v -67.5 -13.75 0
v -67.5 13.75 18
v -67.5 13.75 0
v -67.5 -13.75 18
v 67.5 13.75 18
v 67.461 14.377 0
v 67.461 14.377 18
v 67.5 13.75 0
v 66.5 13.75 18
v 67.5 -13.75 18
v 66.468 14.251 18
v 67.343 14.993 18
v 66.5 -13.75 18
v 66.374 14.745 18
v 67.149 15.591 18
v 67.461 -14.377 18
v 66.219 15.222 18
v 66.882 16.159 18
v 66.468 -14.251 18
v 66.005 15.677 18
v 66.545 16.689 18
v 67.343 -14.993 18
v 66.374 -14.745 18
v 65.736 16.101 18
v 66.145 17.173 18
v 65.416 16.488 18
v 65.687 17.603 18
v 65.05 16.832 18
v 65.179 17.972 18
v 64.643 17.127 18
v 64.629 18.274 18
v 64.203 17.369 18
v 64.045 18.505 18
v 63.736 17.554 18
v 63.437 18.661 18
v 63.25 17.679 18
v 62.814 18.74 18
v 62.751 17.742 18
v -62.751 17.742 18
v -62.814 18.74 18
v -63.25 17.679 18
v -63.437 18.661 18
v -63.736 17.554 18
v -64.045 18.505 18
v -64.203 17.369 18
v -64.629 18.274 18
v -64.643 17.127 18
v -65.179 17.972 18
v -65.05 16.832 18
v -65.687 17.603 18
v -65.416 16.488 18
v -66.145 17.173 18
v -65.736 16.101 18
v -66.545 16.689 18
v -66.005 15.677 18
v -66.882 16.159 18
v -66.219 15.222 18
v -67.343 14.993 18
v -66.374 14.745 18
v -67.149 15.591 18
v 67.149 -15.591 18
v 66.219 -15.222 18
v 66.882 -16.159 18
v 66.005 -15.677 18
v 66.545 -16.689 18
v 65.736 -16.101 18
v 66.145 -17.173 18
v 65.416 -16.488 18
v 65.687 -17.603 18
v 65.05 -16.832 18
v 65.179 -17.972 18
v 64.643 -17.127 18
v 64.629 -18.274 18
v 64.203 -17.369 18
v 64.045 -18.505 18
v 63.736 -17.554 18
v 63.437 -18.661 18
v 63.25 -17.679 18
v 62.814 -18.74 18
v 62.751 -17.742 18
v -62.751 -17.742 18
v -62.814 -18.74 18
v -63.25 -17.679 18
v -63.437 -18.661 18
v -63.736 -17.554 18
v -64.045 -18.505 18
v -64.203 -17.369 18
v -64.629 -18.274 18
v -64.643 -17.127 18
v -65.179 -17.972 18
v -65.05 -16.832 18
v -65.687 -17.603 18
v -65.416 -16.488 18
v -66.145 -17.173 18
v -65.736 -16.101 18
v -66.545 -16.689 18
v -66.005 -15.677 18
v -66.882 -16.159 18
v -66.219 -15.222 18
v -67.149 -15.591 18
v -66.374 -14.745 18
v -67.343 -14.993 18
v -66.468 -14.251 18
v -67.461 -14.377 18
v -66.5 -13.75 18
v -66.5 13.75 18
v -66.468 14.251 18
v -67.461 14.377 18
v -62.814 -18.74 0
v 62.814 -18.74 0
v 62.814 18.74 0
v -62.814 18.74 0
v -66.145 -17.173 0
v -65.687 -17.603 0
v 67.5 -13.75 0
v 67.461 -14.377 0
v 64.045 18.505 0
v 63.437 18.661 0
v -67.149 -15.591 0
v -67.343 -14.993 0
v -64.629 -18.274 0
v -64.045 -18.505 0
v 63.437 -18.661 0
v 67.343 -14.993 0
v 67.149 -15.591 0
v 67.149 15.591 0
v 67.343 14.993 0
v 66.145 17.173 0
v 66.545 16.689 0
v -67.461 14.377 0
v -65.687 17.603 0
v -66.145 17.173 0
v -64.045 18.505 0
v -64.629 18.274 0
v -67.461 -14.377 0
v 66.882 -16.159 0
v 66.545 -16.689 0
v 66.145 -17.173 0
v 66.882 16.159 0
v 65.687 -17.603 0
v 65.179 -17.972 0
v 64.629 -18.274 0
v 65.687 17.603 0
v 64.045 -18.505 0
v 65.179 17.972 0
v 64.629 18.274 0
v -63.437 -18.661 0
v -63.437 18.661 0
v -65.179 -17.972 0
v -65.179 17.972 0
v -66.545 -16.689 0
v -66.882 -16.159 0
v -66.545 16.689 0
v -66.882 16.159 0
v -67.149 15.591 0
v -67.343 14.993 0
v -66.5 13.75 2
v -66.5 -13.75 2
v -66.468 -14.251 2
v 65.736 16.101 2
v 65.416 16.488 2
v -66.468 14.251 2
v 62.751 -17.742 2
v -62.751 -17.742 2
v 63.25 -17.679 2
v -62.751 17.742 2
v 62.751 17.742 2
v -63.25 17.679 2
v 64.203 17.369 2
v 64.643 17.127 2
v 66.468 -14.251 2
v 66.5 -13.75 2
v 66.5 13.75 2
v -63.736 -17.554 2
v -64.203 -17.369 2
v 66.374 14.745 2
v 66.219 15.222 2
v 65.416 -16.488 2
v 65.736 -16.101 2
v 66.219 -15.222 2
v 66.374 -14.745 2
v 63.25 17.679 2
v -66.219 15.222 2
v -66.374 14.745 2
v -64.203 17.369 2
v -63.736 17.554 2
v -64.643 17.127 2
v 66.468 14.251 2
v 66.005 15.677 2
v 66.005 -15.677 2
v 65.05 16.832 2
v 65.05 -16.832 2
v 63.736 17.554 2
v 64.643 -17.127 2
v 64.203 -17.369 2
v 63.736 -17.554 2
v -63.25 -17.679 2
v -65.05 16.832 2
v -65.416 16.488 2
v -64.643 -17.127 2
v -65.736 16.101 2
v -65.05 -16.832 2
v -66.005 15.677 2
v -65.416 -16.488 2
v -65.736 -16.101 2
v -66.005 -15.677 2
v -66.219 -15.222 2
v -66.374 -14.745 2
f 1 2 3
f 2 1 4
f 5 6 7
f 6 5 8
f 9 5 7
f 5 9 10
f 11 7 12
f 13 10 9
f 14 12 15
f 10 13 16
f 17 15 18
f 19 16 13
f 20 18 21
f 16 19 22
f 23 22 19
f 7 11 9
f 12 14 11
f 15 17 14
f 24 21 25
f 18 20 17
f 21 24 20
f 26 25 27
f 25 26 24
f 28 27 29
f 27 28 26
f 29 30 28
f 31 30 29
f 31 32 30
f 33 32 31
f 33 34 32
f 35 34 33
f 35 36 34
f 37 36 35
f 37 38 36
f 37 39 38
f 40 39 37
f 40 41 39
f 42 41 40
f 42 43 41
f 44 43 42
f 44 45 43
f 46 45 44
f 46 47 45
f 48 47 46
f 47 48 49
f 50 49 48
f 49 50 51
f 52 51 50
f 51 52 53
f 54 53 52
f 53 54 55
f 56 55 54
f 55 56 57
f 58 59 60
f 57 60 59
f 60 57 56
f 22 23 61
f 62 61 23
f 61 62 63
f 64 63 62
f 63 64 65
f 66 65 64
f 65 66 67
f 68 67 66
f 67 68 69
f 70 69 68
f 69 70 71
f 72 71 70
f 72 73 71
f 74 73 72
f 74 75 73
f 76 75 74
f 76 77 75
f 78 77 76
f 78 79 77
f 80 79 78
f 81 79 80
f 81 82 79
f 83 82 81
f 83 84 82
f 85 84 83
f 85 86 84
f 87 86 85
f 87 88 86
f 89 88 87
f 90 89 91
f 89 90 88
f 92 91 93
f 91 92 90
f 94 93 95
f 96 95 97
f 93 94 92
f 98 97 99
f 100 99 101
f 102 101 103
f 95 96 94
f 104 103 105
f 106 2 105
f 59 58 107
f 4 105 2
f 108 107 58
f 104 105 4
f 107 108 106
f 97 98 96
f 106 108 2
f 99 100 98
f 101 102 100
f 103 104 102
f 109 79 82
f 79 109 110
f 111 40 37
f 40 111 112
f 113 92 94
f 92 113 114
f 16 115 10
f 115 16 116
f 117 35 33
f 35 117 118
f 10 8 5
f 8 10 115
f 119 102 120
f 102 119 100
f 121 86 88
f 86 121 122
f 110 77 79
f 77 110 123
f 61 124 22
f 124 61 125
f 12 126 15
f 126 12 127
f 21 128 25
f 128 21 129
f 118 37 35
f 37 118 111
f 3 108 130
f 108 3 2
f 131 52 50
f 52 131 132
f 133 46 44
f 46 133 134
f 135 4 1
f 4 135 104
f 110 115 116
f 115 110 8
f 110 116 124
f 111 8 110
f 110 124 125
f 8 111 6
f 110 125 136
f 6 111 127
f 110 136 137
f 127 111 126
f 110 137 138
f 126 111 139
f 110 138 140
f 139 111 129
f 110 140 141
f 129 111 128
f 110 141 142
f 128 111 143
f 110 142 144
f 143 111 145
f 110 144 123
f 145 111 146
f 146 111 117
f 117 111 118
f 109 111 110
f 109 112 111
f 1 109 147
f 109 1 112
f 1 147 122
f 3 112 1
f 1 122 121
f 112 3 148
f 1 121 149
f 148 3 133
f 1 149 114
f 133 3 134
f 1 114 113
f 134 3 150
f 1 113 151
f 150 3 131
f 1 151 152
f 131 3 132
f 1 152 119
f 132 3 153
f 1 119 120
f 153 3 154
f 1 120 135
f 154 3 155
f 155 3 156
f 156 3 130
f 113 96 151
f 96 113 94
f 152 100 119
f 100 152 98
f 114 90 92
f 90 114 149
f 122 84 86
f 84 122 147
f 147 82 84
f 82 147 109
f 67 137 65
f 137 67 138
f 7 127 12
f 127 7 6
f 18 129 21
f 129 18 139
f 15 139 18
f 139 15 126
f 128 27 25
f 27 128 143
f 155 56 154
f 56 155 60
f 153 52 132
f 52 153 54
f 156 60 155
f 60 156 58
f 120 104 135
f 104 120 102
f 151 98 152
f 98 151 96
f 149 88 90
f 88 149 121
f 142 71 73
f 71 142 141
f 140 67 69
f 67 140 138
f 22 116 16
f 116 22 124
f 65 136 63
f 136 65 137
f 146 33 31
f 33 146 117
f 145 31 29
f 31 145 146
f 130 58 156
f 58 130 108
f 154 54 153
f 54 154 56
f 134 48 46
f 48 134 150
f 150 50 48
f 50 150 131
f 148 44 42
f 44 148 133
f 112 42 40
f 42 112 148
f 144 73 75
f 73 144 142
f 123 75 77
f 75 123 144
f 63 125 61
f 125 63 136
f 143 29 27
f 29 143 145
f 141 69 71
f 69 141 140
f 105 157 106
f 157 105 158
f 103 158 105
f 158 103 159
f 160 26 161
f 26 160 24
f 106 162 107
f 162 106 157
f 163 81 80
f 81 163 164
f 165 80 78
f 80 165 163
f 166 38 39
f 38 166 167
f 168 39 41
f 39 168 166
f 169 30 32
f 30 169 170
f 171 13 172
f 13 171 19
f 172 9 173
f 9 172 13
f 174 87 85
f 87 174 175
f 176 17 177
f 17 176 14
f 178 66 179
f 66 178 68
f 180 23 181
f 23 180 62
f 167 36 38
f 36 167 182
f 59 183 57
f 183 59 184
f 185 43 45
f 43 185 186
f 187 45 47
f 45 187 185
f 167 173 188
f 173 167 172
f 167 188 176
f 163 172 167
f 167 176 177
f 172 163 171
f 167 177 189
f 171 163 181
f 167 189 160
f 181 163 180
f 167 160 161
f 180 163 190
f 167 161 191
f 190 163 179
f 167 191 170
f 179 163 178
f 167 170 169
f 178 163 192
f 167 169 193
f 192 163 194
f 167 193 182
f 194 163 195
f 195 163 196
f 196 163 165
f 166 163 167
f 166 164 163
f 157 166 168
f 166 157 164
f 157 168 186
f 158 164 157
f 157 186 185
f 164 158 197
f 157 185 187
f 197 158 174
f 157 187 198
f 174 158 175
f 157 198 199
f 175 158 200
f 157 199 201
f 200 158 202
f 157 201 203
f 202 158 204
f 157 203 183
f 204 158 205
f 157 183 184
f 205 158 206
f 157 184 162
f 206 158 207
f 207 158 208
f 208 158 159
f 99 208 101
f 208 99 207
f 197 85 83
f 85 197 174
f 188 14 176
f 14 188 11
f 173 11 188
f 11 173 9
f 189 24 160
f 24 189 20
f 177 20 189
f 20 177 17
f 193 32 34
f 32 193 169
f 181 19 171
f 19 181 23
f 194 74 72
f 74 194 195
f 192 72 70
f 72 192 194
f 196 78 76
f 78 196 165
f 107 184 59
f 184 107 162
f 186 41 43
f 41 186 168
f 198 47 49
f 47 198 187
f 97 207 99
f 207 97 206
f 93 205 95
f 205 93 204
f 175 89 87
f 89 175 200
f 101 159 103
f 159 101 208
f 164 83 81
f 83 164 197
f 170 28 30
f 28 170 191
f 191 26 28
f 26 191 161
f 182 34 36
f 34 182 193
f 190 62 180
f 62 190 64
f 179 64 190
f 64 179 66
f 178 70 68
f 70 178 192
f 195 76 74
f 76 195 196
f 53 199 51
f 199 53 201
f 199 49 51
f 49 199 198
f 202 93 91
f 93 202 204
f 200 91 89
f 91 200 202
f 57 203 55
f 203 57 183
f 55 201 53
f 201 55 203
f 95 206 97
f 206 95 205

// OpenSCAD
$fn = 50;


difference() {
	union() {
		hull() {
			translate(v = [-62.5000000000, 13.7500000000, 0]) {
				cylinder(h = 18, r = 5);
			}
			translate(v = [62.5000000000, 13.7500000000, 0]) {
				cylinder(h = 18, r = 5);
			}
			translate(v = [-62.5000000000, -13.7500000000, 0]) {
				cylinder(h = 18, r = 5);
			}
			translate(v = [62.5000000000, -13.7500000000, 0]) {
				cylinder(h = 18, r = 5);
			}
		}
	}
	union() {
		translate(v = [0, 0, 2]) {
			hull() {
				translate(v = [-62.5000000000, 13.7500000000, 0]) {
					cylinder(h = 16, r = 4);
				}
				translate(v = [62.5000000000, 13.7500000000, 0]) {
					cylinder(h = 16, r = 4);
				}
				translate(v = [-62.5000000000, -13.7500000000, 0]) {
					cylinder(h = 16, r = 4);
				}
				translate(v = [62.5000000000, -13.7500000000, 0]) {
					cylinder(h = 16, r = 4);
				}
			}
		}
	}
}
